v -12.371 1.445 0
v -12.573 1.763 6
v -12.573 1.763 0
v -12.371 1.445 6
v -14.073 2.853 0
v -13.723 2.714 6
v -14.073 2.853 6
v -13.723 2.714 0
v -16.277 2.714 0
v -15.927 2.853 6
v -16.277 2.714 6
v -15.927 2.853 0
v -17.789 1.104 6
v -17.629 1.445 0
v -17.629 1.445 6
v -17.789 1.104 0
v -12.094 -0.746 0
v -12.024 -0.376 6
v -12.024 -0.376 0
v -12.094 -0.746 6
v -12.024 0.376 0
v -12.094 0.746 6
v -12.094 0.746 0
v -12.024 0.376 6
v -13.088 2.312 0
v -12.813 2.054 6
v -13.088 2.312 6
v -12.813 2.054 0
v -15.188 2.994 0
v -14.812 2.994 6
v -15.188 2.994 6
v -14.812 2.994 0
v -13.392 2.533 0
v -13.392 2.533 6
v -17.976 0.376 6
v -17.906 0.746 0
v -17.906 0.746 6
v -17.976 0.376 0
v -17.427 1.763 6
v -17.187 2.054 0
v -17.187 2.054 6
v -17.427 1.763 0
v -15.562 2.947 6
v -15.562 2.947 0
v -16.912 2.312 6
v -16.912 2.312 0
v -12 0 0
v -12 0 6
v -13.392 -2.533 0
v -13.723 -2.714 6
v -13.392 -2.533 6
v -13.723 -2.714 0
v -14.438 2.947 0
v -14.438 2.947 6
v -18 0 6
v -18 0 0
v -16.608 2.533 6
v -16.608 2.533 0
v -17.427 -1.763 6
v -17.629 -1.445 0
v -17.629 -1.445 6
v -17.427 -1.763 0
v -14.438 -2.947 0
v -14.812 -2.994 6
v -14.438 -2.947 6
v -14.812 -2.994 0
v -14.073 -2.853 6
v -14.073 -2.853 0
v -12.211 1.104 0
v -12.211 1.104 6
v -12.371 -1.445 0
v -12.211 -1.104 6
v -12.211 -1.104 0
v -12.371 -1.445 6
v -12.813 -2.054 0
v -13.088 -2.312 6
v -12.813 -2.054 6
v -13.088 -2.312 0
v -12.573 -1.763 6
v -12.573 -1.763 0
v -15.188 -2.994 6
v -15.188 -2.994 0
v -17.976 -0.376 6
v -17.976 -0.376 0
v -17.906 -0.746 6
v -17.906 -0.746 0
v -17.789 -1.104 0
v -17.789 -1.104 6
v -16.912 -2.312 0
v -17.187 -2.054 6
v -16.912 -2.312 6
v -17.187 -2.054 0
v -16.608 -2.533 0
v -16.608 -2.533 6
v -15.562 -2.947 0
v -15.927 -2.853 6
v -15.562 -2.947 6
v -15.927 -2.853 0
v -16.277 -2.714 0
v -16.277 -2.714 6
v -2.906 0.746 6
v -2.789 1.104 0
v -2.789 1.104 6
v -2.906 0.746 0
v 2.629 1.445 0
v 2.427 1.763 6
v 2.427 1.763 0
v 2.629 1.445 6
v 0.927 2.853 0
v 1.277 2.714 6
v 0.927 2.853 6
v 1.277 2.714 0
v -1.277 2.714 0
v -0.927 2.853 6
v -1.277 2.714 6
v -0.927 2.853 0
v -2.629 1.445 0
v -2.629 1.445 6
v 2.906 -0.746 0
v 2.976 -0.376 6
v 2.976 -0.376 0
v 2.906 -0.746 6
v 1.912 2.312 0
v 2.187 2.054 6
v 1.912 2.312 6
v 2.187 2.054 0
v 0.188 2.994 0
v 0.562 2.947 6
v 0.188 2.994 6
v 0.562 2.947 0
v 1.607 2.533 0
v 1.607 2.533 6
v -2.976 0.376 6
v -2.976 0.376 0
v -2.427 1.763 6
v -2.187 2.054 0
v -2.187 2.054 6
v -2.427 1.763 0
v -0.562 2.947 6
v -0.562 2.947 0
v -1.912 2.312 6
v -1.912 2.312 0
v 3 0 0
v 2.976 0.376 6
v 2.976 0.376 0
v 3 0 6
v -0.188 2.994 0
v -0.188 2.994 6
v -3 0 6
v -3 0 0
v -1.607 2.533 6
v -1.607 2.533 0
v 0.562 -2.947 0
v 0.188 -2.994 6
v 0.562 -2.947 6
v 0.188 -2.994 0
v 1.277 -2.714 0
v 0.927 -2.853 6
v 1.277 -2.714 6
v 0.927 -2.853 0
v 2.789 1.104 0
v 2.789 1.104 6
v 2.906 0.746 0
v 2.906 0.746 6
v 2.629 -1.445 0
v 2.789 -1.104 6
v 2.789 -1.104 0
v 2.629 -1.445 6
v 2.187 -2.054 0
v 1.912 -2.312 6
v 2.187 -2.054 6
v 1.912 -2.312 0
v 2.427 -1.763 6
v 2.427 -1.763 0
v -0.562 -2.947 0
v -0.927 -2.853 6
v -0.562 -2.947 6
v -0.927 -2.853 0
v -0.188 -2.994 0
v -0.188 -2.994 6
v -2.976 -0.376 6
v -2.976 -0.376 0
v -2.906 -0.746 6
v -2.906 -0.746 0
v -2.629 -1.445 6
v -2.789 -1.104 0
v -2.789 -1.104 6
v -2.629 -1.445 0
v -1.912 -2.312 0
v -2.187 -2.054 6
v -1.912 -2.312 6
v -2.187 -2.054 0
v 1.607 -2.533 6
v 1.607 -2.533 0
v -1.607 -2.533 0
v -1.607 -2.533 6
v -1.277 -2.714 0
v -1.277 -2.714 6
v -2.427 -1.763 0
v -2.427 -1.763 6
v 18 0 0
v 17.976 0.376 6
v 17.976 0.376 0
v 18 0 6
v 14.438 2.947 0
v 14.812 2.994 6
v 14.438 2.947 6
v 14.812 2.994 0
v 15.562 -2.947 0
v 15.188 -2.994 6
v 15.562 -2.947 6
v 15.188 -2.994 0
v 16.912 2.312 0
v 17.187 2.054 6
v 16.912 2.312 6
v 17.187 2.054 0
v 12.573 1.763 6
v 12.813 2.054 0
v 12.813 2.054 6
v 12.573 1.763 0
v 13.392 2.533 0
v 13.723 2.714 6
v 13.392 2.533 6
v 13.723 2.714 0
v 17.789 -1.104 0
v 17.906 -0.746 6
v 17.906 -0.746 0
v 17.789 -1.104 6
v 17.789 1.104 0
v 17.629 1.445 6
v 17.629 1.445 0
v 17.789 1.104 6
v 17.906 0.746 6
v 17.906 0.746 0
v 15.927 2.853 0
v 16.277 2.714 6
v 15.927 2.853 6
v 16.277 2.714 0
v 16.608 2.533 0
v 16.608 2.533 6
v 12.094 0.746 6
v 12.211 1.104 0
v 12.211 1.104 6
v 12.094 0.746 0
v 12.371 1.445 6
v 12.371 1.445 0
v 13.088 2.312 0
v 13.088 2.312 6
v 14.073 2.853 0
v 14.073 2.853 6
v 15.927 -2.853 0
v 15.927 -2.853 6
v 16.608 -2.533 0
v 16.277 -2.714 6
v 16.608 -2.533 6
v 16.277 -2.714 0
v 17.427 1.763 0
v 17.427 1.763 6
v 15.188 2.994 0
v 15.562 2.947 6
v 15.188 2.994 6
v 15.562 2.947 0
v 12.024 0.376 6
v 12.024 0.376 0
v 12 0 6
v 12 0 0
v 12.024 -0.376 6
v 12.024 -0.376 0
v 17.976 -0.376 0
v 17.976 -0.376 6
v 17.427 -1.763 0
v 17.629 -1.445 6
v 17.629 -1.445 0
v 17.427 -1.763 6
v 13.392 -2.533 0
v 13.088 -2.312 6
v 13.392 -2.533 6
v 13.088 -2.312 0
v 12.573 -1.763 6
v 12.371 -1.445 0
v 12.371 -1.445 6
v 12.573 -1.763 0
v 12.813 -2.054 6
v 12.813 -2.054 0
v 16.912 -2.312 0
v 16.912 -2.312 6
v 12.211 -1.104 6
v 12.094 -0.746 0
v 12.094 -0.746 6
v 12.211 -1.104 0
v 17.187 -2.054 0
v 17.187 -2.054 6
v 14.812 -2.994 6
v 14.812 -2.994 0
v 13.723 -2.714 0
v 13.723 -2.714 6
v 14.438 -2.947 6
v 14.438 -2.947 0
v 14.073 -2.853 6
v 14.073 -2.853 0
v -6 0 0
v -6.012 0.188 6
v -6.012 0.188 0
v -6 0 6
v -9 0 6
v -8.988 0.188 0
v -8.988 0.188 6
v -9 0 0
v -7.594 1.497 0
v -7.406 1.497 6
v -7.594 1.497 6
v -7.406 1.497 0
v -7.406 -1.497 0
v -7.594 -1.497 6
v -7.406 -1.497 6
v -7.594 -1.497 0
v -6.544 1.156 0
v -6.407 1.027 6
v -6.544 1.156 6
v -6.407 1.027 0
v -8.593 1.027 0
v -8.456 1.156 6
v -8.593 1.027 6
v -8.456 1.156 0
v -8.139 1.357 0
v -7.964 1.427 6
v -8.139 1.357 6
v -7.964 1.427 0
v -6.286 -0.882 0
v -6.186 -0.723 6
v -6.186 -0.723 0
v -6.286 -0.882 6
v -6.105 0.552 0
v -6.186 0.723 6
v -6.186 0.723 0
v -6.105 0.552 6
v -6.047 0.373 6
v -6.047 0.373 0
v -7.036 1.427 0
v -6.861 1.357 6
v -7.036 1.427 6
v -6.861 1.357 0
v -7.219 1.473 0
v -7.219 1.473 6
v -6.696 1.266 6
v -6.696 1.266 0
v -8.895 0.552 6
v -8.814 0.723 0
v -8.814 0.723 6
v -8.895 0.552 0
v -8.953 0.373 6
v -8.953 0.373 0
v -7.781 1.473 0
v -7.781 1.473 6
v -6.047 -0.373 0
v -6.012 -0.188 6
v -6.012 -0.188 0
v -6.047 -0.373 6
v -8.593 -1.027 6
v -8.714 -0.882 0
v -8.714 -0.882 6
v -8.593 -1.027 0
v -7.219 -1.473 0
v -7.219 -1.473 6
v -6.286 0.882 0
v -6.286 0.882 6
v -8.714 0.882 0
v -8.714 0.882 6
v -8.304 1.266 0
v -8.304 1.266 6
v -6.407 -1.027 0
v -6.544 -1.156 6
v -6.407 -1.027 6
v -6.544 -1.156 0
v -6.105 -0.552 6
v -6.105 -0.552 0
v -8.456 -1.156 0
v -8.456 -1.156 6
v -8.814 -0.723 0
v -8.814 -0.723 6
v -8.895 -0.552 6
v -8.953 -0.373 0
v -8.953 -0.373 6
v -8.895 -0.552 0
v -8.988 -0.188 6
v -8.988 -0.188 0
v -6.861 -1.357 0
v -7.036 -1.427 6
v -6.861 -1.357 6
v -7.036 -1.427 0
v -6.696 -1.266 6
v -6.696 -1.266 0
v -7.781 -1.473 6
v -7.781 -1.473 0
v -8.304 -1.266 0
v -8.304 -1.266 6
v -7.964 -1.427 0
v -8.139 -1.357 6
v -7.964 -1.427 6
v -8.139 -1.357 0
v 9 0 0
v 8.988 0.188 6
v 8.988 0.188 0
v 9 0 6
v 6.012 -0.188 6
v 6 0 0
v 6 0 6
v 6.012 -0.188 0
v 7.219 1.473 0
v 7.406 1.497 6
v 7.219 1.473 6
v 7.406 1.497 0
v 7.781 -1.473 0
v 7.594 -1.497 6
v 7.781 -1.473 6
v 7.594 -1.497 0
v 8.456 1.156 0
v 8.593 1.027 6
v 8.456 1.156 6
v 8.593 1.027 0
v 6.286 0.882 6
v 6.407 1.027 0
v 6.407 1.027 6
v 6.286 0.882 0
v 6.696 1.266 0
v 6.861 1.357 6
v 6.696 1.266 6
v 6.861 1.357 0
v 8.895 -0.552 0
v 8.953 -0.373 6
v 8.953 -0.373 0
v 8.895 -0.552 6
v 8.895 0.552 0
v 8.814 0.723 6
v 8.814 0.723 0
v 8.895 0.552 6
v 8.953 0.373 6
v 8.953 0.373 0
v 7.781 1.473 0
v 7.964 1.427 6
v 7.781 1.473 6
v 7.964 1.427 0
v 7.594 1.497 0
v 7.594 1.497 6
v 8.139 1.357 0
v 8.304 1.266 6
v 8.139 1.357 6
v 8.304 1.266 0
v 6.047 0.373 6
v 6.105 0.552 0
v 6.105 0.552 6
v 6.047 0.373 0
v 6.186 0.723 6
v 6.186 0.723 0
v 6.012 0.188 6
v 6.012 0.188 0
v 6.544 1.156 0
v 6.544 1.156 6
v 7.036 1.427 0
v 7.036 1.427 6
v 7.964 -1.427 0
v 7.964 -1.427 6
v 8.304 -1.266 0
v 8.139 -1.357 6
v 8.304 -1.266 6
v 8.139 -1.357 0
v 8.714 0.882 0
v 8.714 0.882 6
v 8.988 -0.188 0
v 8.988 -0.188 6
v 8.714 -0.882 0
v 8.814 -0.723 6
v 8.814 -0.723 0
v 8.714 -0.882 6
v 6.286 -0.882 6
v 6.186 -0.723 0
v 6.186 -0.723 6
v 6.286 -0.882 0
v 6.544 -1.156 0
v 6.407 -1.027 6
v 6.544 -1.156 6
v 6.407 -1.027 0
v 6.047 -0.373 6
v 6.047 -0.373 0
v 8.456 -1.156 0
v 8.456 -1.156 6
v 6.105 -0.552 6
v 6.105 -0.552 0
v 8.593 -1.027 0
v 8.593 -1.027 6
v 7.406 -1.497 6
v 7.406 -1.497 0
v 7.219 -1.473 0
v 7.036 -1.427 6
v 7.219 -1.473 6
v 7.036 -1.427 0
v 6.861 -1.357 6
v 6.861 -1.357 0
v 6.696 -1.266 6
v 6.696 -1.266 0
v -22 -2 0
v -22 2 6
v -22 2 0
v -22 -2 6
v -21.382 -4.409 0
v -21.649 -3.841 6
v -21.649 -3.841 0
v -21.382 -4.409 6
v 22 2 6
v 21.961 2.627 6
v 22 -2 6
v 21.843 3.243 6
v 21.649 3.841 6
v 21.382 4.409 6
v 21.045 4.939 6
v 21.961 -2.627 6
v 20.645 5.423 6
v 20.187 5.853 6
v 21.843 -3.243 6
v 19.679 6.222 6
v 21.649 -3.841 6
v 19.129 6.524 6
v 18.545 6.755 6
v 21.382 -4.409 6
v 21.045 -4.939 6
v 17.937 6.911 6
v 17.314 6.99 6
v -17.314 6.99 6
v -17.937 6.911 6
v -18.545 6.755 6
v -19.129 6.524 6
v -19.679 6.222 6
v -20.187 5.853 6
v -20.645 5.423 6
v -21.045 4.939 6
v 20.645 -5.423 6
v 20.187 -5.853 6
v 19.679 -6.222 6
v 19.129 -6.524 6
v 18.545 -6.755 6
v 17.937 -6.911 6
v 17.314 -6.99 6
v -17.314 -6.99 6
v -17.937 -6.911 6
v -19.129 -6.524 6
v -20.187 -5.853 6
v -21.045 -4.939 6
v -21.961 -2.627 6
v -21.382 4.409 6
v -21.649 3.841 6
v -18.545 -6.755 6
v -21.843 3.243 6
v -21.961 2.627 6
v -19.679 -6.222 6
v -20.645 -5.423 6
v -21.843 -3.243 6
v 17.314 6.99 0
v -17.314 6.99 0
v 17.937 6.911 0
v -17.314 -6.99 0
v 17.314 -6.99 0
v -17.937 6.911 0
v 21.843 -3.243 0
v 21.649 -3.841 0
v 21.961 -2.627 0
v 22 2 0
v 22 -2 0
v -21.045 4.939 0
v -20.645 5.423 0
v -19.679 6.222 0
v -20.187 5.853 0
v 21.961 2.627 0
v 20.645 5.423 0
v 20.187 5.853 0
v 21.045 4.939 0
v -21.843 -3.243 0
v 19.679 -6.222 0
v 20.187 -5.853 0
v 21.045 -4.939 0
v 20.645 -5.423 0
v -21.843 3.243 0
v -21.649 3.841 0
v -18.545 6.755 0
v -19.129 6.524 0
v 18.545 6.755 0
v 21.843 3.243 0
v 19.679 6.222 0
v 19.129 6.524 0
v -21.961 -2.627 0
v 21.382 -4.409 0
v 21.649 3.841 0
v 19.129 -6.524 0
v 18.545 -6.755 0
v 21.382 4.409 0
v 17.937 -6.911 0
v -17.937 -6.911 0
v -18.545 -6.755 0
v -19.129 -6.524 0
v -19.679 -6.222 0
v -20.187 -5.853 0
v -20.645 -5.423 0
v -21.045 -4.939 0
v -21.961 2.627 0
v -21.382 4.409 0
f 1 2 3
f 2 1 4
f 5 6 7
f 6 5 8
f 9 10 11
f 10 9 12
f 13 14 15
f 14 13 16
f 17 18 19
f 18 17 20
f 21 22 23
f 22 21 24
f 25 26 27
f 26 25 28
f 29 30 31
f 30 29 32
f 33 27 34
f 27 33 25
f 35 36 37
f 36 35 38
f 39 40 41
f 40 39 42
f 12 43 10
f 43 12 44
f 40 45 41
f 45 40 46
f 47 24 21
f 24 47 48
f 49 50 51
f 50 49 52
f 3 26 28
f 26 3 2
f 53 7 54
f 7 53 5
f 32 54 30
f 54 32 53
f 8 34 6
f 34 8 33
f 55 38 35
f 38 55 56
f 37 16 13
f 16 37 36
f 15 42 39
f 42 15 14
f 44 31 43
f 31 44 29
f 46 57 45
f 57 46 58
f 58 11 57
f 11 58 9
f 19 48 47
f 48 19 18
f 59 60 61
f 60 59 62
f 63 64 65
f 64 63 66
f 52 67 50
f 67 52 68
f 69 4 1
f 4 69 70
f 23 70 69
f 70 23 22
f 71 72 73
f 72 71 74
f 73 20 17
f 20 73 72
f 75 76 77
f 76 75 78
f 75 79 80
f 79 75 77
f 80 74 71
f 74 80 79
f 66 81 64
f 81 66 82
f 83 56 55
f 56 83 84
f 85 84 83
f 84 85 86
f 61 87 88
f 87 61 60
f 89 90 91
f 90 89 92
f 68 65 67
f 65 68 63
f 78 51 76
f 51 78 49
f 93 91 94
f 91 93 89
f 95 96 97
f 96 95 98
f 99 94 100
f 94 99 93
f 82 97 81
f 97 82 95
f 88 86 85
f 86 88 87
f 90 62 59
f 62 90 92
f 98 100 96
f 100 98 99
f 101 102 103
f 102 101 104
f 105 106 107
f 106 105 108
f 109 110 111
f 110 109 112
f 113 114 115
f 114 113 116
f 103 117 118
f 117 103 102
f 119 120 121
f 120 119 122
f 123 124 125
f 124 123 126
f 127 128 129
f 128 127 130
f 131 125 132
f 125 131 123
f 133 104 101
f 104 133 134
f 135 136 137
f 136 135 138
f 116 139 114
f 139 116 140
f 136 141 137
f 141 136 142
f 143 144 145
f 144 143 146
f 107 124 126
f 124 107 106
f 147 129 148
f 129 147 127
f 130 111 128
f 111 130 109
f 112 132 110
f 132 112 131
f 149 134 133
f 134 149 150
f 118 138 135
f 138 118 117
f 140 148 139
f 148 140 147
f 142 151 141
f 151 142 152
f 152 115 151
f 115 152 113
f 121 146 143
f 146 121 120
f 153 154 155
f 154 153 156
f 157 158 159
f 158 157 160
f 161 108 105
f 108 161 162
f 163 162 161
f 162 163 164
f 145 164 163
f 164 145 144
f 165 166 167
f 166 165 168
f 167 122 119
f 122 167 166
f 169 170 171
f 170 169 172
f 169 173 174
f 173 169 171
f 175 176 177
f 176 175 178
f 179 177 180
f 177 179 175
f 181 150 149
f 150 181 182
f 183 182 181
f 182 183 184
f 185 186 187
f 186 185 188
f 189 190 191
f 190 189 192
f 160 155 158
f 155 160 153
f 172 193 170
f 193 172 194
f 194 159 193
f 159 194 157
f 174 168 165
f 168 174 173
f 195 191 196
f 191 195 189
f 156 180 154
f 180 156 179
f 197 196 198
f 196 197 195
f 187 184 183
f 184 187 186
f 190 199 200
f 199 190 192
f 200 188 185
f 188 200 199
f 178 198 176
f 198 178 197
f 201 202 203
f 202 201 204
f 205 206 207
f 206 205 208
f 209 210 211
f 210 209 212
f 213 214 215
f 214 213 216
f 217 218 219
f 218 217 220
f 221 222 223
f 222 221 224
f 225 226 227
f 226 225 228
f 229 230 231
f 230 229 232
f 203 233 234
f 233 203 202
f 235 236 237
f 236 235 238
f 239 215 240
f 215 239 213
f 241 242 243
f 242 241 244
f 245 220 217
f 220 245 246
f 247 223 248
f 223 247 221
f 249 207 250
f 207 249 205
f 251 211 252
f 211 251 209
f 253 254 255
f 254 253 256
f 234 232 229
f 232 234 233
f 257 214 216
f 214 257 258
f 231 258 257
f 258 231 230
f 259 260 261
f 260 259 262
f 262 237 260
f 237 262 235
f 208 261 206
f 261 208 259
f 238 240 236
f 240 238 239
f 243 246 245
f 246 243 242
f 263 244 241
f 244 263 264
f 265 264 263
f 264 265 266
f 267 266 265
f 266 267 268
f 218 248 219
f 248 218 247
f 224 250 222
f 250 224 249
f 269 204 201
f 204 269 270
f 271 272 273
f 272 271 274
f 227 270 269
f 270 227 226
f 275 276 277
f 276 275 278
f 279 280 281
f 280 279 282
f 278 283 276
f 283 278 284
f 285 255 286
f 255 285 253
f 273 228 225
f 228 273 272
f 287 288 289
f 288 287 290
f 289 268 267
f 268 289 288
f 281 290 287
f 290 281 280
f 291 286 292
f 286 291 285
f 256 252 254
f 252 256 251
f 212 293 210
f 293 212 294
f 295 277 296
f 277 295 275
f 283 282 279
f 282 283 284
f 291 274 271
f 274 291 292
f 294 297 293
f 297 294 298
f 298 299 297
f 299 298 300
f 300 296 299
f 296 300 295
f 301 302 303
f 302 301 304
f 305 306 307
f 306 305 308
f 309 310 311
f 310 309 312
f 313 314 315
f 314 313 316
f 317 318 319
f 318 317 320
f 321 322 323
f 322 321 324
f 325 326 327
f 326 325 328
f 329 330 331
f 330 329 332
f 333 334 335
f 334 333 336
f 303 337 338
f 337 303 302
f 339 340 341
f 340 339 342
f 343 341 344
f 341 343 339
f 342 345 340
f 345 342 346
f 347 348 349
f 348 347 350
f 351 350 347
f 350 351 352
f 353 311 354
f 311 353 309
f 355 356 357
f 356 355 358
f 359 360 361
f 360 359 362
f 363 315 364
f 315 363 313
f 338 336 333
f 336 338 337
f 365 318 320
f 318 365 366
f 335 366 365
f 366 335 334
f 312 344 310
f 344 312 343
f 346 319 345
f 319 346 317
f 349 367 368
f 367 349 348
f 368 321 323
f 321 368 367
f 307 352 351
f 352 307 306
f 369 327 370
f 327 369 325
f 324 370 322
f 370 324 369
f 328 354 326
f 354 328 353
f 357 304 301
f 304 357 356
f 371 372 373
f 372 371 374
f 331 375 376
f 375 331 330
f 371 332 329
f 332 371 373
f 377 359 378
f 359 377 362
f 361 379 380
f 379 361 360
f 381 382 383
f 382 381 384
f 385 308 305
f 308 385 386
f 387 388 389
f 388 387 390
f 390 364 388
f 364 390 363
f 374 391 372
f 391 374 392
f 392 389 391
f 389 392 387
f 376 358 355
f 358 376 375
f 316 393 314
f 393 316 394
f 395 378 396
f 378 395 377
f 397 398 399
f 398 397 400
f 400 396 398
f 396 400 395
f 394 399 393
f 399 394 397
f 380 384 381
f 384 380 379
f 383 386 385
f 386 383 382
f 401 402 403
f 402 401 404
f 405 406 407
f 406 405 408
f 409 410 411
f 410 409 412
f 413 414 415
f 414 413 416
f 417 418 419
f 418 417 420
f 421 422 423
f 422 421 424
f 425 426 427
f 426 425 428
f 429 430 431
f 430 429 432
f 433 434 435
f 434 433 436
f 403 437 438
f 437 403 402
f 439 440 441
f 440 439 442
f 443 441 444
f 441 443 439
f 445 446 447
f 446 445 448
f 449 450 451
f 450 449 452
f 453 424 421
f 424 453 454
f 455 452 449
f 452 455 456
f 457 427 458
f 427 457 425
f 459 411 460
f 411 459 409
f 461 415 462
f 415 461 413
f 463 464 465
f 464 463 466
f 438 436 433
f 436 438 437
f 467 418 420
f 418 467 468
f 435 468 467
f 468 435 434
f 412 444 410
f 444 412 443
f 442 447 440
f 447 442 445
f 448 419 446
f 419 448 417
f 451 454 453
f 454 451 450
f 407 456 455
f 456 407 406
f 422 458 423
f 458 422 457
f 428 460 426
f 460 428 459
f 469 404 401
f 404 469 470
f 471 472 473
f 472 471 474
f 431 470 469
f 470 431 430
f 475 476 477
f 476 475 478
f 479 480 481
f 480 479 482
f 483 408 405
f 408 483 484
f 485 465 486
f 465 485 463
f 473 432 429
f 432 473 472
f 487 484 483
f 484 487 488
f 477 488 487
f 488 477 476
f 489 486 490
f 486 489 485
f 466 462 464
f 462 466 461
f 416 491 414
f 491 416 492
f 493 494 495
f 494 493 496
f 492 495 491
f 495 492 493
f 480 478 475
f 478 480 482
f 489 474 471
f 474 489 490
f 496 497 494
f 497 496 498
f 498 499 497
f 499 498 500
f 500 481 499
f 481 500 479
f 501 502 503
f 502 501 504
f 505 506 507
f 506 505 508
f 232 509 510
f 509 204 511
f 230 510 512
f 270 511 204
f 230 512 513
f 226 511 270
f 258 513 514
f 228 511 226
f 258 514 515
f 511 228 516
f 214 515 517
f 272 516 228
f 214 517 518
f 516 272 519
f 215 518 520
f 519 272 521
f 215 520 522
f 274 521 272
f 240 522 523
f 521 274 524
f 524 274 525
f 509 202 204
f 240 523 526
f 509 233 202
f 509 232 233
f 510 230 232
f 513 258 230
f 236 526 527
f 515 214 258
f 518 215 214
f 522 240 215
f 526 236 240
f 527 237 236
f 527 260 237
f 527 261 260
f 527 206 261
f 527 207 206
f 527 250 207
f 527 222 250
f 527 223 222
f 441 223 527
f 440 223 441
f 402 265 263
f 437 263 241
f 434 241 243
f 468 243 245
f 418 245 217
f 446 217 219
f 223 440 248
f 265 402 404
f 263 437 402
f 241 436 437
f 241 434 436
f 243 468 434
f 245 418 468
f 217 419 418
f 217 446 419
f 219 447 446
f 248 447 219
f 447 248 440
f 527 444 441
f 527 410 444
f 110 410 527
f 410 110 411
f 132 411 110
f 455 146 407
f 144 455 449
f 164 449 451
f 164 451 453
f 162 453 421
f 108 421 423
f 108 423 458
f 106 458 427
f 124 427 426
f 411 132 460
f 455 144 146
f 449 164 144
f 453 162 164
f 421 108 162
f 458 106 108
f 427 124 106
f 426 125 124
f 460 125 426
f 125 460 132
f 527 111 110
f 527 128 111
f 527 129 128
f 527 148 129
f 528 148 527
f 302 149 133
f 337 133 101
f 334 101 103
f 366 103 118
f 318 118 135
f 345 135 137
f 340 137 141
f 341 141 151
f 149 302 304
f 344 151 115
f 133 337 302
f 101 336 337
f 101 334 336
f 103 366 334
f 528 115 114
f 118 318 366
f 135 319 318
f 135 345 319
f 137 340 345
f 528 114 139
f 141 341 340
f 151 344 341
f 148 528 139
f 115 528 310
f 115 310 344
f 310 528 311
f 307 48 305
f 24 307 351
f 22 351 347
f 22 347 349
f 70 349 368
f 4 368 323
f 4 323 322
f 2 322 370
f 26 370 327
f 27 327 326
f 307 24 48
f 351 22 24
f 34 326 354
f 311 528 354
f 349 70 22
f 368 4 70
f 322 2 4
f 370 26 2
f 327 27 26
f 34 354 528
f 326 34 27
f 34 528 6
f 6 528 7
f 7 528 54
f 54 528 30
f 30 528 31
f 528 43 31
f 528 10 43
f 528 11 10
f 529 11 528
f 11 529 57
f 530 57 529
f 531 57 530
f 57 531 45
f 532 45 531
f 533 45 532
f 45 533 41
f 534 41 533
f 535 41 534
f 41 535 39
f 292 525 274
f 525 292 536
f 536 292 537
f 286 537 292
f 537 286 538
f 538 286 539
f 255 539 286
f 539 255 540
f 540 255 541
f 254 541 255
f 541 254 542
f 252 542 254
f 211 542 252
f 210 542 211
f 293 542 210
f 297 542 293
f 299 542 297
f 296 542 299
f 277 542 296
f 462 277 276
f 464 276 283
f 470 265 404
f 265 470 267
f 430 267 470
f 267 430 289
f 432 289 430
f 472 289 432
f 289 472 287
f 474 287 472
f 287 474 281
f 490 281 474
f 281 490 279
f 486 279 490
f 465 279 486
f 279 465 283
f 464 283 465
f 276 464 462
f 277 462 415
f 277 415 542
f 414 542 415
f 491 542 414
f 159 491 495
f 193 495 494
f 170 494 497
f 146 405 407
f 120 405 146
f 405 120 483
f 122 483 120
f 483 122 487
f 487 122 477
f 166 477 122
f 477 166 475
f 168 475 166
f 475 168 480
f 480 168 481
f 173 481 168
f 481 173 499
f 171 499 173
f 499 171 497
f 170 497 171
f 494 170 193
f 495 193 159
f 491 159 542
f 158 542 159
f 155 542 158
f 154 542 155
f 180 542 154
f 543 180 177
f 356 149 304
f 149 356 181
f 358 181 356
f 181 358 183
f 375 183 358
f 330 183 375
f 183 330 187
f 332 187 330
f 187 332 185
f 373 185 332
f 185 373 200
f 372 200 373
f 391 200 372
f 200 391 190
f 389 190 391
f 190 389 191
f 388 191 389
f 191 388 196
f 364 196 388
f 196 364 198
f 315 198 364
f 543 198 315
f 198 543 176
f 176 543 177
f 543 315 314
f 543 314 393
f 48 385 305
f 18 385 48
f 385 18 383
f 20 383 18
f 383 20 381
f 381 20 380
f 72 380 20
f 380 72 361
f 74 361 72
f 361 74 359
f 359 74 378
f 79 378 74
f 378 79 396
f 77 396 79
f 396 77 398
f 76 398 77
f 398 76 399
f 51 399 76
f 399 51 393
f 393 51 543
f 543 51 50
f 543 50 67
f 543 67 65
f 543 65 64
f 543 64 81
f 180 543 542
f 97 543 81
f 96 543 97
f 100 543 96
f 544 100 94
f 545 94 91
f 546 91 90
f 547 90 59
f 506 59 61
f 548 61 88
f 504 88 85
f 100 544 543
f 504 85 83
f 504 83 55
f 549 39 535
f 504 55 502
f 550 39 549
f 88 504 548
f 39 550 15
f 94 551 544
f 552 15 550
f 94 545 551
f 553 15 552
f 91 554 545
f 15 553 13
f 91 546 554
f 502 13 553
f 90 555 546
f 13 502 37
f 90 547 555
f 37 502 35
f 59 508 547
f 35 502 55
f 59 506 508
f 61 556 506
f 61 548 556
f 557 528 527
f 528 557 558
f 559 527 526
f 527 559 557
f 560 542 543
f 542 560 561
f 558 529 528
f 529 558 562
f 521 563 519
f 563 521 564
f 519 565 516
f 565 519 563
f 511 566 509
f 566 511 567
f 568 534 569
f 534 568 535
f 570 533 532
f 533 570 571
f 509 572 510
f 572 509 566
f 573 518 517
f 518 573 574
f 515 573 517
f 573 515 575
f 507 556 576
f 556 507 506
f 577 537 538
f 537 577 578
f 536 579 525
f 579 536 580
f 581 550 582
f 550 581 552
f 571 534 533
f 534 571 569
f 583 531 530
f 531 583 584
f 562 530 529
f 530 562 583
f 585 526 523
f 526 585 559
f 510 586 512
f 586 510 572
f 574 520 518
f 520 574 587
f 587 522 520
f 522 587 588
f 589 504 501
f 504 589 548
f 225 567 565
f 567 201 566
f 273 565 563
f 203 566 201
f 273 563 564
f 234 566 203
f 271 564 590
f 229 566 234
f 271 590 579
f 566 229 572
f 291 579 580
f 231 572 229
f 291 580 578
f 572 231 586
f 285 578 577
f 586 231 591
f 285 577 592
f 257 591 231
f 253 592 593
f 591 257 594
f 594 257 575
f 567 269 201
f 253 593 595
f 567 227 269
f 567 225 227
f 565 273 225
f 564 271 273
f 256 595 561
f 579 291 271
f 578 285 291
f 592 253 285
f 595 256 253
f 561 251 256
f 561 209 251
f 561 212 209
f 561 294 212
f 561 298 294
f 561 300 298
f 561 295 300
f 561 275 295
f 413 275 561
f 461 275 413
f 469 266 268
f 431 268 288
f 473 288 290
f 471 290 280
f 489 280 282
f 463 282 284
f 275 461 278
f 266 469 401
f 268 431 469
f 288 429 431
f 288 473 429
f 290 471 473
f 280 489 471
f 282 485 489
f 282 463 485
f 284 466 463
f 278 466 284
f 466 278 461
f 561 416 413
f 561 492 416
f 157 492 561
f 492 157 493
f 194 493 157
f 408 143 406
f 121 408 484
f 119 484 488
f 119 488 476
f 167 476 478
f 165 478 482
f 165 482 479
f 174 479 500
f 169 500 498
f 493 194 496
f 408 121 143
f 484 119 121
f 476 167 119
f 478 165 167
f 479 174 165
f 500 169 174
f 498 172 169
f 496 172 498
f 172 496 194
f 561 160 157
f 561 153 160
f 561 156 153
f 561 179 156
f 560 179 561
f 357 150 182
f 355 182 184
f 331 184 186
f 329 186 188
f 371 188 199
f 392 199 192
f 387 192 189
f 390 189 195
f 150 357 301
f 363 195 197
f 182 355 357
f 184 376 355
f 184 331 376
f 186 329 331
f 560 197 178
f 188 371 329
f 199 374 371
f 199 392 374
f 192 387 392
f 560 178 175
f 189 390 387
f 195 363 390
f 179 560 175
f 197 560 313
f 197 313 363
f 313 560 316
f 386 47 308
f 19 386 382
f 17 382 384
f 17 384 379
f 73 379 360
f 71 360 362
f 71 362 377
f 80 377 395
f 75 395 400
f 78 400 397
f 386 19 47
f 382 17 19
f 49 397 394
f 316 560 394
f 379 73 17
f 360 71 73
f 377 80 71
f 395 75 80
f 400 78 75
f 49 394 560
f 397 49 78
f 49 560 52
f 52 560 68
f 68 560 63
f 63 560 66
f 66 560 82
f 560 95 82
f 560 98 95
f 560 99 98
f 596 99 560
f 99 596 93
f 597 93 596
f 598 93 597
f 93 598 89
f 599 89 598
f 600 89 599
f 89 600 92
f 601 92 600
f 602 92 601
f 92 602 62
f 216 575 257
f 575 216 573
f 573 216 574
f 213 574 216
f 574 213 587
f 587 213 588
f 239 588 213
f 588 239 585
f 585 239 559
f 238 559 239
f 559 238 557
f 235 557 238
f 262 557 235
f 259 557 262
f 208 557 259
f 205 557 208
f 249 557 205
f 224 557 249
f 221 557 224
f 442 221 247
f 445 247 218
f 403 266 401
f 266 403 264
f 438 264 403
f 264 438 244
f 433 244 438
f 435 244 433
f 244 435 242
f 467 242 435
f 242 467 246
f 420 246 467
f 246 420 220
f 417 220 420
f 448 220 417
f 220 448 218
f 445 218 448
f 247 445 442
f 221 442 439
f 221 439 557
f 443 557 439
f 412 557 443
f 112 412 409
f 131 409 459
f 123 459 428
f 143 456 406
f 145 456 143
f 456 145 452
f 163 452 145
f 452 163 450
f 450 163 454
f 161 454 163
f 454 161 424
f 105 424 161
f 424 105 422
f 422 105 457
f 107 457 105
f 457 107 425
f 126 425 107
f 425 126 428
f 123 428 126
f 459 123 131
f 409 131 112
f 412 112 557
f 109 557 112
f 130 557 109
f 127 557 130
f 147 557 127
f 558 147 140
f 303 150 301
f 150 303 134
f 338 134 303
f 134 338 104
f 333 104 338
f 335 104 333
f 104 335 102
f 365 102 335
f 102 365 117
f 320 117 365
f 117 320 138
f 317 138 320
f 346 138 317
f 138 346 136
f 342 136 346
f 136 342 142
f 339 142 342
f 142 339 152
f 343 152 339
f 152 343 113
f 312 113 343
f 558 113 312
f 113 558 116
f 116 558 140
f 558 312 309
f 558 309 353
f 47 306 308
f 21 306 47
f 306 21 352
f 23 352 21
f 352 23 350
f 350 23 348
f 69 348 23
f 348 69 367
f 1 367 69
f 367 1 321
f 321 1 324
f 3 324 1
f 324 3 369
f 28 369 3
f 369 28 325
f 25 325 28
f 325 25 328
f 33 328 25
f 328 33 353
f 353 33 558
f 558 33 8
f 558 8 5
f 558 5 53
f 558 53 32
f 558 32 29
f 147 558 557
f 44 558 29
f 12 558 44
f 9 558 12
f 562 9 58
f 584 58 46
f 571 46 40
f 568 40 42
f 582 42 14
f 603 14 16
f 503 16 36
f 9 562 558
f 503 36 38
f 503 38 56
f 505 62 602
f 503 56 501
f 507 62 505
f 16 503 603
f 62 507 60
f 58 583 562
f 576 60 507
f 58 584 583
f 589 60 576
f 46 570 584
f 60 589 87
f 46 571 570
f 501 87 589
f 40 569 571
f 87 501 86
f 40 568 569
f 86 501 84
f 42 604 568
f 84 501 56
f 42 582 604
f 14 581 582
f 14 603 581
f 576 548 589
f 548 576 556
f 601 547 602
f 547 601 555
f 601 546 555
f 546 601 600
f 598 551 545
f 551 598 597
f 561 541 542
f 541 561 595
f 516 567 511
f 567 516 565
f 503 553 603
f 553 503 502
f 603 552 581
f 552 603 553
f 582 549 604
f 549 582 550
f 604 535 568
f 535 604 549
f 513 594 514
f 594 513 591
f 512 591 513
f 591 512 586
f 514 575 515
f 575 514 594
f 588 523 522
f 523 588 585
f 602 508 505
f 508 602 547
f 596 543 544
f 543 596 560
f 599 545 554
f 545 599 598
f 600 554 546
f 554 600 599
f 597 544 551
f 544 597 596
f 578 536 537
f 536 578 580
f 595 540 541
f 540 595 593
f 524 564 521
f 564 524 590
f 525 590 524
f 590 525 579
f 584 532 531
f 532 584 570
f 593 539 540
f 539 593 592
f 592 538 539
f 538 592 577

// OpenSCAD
$fn = 50;


difference() {
	union() {
		*color(alpha = 1.0000000000, c = "gray") {
			translate(v = [0, 7, 0]) {
				linear_extrude(height = 1) {
					text(font = "Arial:style=Bold", halign = "center", size = 4.5000000000, text = "COMMENT plate main", valign = "center");
				}
			}
		}
		*color(alpha = 1.0000000000, c = "gray") {
			translate(v = [0, 14, 0]) {
				linear_extrude(height = 1) {
					text(font = "Arial:style=Bold", halign = "center", size = 4.5000000000, text = "COMMENT description oobb_plate_shape_p_type_6_depth_3_width_1_height_6_thickness_true_both_holes", valign = "center");
				}
			}
		}
		hull() {
			translate(v = [-17.0000000000, 2.0000000000, 0]) {
				cylinder(h = 6, r = 5);
			}
			translate(v = [17.0000000000, 2.0000000000, 0]) {
				cylinder(h = 6, r = 5);
			}
			translate(v = [-17.0000000000, -2.0000000000, 0]) {
				cylinder(h = 6, r = 5);
			}
			translate(v = [17.0000000000, -2.0000000000, 0]) {
				cylinder(h = 6, r = 5);
			}
		}
	}
	union() {
		*color(alpha = 1.0000000000, c = "gray") {
			translate(v = [0, 7, 0]) {
				linear_extrude(height = 1) {
					text(font = "Arial:style=Bold", halign = "center", size = 4.5000000000, text = "COMMENT holes main", valign = "center");
				}
			}
		}
		*color(alpha = 1.0000000000, c = "gray") {
			translate(v = [0, 14, 0]) {
				linear_extrude(height = 1) {
					text(font = "Arial:style=Bold", halign = "center", size = 4.5000000000, text = "COMMENT description oobb_holes_shape_n_type_3_width_1_height_6_thickness_true_both_holes", valign = "center");
				}
			}
		}
		translate(v = [-15.0000000000, 0.0000000000, 0]) {
			translate(v = [0, 0, -50]) {
				cylinder(h = 100, r = 3.0000000000);
			}
		}
		translate(v = [0, 0, -50]) {
			cylinder(h = 100, r = 3.0000000000);
		}
		translate(v = [15.0000000000, 0.0000000000, 0]) {
			translate(v = [0, 0, -50]) {
				cylinder(h = 100, r = 3.0000000000);
			}
		}
		translate(v = [-15.0000000000, 0.0000000000, 0]) {
			translate(v = [0, 0, -50]) {
				cylinder(h = 100, r = 1.5000000000);
			}
		}
		translate(v = [-7.5000000000, 0.0000000000, 0]) {
			translate(v = [0, 0, -50]) {
				cylinder(h = 100, r = 1.5000000000);
			}
		}
		translate(v = [0, 0, -50]) {
			cylinder(h = 100, r = 1.5000000000);
		}
		translate(v = [7.5000000000, 0.0000000000, 0]) {
			translate(v = [0, 0, -50]) {
				cylinder(h = 100, r = 1.5000000000);
			}
		}
		translate(v = [15.0000000000, 0.0000000000, 0]) {
			translate(v = [0, 0, -50]) {
				cylinder(h = 100, r = 1.5000000000);
			}
		}
	}
}
